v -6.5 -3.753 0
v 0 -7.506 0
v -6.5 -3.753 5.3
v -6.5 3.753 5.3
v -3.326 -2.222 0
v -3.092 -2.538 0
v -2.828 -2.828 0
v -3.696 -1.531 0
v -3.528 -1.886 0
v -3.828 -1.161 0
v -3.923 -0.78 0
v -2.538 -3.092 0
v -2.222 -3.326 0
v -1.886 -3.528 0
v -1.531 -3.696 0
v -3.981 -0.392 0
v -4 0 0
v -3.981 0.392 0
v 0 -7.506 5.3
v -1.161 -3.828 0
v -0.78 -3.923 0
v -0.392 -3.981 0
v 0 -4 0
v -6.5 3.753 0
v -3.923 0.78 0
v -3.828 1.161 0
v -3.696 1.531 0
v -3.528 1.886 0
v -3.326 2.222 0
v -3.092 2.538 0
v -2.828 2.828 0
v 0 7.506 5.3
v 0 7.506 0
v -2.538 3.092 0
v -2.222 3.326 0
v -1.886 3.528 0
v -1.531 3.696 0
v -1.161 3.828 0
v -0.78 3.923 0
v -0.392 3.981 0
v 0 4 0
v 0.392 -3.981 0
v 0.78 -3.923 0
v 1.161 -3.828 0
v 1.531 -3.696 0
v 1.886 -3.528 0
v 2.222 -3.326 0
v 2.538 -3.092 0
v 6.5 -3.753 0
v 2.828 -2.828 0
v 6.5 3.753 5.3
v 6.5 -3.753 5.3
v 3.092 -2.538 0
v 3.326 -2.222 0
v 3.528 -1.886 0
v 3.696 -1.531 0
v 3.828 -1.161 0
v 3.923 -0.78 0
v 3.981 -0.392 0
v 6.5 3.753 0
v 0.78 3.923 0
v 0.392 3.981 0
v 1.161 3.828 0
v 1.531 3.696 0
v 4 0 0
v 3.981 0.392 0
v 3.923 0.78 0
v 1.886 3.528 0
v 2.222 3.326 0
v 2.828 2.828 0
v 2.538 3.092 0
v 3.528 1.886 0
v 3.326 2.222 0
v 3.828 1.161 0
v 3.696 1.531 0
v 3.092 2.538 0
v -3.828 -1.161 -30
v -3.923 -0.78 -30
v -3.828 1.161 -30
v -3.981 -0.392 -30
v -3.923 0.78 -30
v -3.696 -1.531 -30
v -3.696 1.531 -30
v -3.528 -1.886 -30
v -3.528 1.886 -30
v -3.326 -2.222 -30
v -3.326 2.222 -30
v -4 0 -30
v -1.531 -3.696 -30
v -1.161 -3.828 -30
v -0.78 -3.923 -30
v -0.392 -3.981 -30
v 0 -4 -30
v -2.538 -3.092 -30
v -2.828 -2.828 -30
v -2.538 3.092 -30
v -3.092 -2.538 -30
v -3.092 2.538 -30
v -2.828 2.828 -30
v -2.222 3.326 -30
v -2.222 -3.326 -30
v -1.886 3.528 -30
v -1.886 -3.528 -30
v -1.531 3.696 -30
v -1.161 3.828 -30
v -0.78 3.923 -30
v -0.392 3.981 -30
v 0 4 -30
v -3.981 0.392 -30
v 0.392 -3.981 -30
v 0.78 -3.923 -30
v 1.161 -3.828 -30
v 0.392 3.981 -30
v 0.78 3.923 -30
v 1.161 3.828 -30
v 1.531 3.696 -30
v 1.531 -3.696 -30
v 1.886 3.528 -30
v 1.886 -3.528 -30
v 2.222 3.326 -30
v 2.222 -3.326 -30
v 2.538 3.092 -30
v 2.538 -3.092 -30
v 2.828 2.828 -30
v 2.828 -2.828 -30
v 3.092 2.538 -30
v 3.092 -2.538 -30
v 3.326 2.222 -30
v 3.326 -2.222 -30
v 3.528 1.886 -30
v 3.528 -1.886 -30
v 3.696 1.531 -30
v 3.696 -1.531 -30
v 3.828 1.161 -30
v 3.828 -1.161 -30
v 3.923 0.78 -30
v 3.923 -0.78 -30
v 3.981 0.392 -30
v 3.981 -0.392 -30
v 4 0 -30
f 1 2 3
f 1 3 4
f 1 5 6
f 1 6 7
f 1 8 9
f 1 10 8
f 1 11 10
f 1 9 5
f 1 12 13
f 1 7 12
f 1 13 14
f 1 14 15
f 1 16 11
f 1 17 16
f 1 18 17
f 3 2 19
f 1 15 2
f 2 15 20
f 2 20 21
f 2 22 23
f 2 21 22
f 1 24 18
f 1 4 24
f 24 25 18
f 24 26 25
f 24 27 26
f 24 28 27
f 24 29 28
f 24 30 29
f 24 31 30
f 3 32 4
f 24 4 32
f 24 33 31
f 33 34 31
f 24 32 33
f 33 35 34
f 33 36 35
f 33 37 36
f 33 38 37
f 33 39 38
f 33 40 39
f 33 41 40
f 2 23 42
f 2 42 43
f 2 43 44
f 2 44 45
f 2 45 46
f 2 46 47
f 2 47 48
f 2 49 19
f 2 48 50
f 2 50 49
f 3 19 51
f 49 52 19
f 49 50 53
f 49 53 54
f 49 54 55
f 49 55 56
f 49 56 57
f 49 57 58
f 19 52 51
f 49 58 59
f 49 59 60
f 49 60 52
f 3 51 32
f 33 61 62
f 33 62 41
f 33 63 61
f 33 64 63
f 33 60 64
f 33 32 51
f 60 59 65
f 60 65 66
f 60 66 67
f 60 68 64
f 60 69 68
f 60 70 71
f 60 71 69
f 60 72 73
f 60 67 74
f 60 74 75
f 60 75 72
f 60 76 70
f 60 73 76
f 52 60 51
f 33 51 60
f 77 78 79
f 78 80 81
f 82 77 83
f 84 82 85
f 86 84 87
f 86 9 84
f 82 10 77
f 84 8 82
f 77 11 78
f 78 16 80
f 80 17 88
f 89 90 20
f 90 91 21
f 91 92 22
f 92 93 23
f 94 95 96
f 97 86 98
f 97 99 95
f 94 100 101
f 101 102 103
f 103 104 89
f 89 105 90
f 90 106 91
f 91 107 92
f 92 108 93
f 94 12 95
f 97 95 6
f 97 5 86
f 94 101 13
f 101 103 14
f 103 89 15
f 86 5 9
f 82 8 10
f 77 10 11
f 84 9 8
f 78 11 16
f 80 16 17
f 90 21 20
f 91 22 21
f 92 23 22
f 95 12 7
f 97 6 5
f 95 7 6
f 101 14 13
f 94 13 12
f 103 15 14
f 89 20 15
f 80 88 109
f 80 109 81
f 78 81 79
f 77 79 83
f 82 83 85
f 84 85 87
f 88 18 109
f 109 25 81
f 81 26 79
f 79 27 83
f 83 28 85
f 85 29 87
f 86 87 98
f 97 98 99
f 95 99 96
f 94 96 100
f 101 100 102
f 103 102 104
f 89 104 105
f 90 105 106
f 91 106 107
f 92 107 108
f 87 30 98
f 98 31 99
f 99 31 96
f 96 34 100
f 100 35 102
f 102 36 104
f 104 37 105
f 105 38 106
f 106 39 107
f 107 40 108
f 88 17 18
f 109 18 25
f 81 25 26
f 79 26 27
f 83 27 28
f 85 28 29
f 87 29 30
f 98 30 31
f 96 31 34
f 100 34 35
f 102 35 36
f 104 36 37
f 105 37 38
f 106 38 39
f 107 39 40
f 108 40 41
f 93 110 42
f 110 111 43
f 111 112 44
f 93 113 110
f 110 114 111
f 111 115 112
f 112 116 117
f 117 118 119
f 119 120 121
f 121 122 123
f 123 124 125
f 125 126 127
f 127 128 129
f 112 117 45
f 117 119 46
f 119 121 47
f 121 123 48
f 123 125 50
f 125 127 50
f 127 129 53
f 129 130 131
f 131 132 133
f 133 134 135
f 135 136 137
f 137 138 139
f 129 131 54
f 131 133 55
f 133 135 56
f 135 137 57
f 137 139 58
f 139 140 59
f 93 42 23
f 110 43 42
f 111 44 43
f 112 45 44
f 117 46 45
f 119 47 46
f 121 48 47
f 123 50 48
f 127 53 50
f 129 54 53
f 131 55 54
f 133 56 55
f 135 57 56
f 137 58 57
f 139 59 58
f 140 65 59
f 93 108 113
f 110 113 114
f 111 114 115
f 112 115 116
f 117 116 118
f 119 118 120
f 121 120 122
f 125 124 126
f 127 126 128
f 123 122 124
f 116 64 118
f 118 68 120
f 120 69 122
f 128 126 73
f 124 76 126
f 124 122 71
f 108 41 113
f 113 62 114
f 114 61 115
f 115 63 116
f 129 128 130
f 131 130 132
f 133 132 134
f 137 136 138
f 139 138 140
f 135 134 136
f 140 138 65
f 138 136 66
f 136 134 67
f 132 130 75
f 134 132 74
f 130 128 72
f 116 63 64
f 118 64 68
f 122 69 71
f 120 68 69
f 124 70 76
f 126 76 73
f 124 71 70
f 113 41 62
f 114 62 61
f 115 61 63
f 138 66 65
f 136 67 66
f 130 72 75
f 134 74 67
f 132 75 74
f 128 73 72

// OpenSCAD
head_across_flats = 13;
head_height = 5.3;
shank_diameter = 8;
shank_length = 30;

union() {
    linear_extrude(height = head_height)
        polygon([
            for (i = [0:5])
                [head_across_flats / sqrt(3) * cos(30 + i * 60),
                 head_across_flats / sqrt(3) * sin(30 + i * 60)]
        ]);

    translate([0, 0, -shank_length])
        cylinder(d = shank_diameter, h = shank_length, $fn = 64);
}
